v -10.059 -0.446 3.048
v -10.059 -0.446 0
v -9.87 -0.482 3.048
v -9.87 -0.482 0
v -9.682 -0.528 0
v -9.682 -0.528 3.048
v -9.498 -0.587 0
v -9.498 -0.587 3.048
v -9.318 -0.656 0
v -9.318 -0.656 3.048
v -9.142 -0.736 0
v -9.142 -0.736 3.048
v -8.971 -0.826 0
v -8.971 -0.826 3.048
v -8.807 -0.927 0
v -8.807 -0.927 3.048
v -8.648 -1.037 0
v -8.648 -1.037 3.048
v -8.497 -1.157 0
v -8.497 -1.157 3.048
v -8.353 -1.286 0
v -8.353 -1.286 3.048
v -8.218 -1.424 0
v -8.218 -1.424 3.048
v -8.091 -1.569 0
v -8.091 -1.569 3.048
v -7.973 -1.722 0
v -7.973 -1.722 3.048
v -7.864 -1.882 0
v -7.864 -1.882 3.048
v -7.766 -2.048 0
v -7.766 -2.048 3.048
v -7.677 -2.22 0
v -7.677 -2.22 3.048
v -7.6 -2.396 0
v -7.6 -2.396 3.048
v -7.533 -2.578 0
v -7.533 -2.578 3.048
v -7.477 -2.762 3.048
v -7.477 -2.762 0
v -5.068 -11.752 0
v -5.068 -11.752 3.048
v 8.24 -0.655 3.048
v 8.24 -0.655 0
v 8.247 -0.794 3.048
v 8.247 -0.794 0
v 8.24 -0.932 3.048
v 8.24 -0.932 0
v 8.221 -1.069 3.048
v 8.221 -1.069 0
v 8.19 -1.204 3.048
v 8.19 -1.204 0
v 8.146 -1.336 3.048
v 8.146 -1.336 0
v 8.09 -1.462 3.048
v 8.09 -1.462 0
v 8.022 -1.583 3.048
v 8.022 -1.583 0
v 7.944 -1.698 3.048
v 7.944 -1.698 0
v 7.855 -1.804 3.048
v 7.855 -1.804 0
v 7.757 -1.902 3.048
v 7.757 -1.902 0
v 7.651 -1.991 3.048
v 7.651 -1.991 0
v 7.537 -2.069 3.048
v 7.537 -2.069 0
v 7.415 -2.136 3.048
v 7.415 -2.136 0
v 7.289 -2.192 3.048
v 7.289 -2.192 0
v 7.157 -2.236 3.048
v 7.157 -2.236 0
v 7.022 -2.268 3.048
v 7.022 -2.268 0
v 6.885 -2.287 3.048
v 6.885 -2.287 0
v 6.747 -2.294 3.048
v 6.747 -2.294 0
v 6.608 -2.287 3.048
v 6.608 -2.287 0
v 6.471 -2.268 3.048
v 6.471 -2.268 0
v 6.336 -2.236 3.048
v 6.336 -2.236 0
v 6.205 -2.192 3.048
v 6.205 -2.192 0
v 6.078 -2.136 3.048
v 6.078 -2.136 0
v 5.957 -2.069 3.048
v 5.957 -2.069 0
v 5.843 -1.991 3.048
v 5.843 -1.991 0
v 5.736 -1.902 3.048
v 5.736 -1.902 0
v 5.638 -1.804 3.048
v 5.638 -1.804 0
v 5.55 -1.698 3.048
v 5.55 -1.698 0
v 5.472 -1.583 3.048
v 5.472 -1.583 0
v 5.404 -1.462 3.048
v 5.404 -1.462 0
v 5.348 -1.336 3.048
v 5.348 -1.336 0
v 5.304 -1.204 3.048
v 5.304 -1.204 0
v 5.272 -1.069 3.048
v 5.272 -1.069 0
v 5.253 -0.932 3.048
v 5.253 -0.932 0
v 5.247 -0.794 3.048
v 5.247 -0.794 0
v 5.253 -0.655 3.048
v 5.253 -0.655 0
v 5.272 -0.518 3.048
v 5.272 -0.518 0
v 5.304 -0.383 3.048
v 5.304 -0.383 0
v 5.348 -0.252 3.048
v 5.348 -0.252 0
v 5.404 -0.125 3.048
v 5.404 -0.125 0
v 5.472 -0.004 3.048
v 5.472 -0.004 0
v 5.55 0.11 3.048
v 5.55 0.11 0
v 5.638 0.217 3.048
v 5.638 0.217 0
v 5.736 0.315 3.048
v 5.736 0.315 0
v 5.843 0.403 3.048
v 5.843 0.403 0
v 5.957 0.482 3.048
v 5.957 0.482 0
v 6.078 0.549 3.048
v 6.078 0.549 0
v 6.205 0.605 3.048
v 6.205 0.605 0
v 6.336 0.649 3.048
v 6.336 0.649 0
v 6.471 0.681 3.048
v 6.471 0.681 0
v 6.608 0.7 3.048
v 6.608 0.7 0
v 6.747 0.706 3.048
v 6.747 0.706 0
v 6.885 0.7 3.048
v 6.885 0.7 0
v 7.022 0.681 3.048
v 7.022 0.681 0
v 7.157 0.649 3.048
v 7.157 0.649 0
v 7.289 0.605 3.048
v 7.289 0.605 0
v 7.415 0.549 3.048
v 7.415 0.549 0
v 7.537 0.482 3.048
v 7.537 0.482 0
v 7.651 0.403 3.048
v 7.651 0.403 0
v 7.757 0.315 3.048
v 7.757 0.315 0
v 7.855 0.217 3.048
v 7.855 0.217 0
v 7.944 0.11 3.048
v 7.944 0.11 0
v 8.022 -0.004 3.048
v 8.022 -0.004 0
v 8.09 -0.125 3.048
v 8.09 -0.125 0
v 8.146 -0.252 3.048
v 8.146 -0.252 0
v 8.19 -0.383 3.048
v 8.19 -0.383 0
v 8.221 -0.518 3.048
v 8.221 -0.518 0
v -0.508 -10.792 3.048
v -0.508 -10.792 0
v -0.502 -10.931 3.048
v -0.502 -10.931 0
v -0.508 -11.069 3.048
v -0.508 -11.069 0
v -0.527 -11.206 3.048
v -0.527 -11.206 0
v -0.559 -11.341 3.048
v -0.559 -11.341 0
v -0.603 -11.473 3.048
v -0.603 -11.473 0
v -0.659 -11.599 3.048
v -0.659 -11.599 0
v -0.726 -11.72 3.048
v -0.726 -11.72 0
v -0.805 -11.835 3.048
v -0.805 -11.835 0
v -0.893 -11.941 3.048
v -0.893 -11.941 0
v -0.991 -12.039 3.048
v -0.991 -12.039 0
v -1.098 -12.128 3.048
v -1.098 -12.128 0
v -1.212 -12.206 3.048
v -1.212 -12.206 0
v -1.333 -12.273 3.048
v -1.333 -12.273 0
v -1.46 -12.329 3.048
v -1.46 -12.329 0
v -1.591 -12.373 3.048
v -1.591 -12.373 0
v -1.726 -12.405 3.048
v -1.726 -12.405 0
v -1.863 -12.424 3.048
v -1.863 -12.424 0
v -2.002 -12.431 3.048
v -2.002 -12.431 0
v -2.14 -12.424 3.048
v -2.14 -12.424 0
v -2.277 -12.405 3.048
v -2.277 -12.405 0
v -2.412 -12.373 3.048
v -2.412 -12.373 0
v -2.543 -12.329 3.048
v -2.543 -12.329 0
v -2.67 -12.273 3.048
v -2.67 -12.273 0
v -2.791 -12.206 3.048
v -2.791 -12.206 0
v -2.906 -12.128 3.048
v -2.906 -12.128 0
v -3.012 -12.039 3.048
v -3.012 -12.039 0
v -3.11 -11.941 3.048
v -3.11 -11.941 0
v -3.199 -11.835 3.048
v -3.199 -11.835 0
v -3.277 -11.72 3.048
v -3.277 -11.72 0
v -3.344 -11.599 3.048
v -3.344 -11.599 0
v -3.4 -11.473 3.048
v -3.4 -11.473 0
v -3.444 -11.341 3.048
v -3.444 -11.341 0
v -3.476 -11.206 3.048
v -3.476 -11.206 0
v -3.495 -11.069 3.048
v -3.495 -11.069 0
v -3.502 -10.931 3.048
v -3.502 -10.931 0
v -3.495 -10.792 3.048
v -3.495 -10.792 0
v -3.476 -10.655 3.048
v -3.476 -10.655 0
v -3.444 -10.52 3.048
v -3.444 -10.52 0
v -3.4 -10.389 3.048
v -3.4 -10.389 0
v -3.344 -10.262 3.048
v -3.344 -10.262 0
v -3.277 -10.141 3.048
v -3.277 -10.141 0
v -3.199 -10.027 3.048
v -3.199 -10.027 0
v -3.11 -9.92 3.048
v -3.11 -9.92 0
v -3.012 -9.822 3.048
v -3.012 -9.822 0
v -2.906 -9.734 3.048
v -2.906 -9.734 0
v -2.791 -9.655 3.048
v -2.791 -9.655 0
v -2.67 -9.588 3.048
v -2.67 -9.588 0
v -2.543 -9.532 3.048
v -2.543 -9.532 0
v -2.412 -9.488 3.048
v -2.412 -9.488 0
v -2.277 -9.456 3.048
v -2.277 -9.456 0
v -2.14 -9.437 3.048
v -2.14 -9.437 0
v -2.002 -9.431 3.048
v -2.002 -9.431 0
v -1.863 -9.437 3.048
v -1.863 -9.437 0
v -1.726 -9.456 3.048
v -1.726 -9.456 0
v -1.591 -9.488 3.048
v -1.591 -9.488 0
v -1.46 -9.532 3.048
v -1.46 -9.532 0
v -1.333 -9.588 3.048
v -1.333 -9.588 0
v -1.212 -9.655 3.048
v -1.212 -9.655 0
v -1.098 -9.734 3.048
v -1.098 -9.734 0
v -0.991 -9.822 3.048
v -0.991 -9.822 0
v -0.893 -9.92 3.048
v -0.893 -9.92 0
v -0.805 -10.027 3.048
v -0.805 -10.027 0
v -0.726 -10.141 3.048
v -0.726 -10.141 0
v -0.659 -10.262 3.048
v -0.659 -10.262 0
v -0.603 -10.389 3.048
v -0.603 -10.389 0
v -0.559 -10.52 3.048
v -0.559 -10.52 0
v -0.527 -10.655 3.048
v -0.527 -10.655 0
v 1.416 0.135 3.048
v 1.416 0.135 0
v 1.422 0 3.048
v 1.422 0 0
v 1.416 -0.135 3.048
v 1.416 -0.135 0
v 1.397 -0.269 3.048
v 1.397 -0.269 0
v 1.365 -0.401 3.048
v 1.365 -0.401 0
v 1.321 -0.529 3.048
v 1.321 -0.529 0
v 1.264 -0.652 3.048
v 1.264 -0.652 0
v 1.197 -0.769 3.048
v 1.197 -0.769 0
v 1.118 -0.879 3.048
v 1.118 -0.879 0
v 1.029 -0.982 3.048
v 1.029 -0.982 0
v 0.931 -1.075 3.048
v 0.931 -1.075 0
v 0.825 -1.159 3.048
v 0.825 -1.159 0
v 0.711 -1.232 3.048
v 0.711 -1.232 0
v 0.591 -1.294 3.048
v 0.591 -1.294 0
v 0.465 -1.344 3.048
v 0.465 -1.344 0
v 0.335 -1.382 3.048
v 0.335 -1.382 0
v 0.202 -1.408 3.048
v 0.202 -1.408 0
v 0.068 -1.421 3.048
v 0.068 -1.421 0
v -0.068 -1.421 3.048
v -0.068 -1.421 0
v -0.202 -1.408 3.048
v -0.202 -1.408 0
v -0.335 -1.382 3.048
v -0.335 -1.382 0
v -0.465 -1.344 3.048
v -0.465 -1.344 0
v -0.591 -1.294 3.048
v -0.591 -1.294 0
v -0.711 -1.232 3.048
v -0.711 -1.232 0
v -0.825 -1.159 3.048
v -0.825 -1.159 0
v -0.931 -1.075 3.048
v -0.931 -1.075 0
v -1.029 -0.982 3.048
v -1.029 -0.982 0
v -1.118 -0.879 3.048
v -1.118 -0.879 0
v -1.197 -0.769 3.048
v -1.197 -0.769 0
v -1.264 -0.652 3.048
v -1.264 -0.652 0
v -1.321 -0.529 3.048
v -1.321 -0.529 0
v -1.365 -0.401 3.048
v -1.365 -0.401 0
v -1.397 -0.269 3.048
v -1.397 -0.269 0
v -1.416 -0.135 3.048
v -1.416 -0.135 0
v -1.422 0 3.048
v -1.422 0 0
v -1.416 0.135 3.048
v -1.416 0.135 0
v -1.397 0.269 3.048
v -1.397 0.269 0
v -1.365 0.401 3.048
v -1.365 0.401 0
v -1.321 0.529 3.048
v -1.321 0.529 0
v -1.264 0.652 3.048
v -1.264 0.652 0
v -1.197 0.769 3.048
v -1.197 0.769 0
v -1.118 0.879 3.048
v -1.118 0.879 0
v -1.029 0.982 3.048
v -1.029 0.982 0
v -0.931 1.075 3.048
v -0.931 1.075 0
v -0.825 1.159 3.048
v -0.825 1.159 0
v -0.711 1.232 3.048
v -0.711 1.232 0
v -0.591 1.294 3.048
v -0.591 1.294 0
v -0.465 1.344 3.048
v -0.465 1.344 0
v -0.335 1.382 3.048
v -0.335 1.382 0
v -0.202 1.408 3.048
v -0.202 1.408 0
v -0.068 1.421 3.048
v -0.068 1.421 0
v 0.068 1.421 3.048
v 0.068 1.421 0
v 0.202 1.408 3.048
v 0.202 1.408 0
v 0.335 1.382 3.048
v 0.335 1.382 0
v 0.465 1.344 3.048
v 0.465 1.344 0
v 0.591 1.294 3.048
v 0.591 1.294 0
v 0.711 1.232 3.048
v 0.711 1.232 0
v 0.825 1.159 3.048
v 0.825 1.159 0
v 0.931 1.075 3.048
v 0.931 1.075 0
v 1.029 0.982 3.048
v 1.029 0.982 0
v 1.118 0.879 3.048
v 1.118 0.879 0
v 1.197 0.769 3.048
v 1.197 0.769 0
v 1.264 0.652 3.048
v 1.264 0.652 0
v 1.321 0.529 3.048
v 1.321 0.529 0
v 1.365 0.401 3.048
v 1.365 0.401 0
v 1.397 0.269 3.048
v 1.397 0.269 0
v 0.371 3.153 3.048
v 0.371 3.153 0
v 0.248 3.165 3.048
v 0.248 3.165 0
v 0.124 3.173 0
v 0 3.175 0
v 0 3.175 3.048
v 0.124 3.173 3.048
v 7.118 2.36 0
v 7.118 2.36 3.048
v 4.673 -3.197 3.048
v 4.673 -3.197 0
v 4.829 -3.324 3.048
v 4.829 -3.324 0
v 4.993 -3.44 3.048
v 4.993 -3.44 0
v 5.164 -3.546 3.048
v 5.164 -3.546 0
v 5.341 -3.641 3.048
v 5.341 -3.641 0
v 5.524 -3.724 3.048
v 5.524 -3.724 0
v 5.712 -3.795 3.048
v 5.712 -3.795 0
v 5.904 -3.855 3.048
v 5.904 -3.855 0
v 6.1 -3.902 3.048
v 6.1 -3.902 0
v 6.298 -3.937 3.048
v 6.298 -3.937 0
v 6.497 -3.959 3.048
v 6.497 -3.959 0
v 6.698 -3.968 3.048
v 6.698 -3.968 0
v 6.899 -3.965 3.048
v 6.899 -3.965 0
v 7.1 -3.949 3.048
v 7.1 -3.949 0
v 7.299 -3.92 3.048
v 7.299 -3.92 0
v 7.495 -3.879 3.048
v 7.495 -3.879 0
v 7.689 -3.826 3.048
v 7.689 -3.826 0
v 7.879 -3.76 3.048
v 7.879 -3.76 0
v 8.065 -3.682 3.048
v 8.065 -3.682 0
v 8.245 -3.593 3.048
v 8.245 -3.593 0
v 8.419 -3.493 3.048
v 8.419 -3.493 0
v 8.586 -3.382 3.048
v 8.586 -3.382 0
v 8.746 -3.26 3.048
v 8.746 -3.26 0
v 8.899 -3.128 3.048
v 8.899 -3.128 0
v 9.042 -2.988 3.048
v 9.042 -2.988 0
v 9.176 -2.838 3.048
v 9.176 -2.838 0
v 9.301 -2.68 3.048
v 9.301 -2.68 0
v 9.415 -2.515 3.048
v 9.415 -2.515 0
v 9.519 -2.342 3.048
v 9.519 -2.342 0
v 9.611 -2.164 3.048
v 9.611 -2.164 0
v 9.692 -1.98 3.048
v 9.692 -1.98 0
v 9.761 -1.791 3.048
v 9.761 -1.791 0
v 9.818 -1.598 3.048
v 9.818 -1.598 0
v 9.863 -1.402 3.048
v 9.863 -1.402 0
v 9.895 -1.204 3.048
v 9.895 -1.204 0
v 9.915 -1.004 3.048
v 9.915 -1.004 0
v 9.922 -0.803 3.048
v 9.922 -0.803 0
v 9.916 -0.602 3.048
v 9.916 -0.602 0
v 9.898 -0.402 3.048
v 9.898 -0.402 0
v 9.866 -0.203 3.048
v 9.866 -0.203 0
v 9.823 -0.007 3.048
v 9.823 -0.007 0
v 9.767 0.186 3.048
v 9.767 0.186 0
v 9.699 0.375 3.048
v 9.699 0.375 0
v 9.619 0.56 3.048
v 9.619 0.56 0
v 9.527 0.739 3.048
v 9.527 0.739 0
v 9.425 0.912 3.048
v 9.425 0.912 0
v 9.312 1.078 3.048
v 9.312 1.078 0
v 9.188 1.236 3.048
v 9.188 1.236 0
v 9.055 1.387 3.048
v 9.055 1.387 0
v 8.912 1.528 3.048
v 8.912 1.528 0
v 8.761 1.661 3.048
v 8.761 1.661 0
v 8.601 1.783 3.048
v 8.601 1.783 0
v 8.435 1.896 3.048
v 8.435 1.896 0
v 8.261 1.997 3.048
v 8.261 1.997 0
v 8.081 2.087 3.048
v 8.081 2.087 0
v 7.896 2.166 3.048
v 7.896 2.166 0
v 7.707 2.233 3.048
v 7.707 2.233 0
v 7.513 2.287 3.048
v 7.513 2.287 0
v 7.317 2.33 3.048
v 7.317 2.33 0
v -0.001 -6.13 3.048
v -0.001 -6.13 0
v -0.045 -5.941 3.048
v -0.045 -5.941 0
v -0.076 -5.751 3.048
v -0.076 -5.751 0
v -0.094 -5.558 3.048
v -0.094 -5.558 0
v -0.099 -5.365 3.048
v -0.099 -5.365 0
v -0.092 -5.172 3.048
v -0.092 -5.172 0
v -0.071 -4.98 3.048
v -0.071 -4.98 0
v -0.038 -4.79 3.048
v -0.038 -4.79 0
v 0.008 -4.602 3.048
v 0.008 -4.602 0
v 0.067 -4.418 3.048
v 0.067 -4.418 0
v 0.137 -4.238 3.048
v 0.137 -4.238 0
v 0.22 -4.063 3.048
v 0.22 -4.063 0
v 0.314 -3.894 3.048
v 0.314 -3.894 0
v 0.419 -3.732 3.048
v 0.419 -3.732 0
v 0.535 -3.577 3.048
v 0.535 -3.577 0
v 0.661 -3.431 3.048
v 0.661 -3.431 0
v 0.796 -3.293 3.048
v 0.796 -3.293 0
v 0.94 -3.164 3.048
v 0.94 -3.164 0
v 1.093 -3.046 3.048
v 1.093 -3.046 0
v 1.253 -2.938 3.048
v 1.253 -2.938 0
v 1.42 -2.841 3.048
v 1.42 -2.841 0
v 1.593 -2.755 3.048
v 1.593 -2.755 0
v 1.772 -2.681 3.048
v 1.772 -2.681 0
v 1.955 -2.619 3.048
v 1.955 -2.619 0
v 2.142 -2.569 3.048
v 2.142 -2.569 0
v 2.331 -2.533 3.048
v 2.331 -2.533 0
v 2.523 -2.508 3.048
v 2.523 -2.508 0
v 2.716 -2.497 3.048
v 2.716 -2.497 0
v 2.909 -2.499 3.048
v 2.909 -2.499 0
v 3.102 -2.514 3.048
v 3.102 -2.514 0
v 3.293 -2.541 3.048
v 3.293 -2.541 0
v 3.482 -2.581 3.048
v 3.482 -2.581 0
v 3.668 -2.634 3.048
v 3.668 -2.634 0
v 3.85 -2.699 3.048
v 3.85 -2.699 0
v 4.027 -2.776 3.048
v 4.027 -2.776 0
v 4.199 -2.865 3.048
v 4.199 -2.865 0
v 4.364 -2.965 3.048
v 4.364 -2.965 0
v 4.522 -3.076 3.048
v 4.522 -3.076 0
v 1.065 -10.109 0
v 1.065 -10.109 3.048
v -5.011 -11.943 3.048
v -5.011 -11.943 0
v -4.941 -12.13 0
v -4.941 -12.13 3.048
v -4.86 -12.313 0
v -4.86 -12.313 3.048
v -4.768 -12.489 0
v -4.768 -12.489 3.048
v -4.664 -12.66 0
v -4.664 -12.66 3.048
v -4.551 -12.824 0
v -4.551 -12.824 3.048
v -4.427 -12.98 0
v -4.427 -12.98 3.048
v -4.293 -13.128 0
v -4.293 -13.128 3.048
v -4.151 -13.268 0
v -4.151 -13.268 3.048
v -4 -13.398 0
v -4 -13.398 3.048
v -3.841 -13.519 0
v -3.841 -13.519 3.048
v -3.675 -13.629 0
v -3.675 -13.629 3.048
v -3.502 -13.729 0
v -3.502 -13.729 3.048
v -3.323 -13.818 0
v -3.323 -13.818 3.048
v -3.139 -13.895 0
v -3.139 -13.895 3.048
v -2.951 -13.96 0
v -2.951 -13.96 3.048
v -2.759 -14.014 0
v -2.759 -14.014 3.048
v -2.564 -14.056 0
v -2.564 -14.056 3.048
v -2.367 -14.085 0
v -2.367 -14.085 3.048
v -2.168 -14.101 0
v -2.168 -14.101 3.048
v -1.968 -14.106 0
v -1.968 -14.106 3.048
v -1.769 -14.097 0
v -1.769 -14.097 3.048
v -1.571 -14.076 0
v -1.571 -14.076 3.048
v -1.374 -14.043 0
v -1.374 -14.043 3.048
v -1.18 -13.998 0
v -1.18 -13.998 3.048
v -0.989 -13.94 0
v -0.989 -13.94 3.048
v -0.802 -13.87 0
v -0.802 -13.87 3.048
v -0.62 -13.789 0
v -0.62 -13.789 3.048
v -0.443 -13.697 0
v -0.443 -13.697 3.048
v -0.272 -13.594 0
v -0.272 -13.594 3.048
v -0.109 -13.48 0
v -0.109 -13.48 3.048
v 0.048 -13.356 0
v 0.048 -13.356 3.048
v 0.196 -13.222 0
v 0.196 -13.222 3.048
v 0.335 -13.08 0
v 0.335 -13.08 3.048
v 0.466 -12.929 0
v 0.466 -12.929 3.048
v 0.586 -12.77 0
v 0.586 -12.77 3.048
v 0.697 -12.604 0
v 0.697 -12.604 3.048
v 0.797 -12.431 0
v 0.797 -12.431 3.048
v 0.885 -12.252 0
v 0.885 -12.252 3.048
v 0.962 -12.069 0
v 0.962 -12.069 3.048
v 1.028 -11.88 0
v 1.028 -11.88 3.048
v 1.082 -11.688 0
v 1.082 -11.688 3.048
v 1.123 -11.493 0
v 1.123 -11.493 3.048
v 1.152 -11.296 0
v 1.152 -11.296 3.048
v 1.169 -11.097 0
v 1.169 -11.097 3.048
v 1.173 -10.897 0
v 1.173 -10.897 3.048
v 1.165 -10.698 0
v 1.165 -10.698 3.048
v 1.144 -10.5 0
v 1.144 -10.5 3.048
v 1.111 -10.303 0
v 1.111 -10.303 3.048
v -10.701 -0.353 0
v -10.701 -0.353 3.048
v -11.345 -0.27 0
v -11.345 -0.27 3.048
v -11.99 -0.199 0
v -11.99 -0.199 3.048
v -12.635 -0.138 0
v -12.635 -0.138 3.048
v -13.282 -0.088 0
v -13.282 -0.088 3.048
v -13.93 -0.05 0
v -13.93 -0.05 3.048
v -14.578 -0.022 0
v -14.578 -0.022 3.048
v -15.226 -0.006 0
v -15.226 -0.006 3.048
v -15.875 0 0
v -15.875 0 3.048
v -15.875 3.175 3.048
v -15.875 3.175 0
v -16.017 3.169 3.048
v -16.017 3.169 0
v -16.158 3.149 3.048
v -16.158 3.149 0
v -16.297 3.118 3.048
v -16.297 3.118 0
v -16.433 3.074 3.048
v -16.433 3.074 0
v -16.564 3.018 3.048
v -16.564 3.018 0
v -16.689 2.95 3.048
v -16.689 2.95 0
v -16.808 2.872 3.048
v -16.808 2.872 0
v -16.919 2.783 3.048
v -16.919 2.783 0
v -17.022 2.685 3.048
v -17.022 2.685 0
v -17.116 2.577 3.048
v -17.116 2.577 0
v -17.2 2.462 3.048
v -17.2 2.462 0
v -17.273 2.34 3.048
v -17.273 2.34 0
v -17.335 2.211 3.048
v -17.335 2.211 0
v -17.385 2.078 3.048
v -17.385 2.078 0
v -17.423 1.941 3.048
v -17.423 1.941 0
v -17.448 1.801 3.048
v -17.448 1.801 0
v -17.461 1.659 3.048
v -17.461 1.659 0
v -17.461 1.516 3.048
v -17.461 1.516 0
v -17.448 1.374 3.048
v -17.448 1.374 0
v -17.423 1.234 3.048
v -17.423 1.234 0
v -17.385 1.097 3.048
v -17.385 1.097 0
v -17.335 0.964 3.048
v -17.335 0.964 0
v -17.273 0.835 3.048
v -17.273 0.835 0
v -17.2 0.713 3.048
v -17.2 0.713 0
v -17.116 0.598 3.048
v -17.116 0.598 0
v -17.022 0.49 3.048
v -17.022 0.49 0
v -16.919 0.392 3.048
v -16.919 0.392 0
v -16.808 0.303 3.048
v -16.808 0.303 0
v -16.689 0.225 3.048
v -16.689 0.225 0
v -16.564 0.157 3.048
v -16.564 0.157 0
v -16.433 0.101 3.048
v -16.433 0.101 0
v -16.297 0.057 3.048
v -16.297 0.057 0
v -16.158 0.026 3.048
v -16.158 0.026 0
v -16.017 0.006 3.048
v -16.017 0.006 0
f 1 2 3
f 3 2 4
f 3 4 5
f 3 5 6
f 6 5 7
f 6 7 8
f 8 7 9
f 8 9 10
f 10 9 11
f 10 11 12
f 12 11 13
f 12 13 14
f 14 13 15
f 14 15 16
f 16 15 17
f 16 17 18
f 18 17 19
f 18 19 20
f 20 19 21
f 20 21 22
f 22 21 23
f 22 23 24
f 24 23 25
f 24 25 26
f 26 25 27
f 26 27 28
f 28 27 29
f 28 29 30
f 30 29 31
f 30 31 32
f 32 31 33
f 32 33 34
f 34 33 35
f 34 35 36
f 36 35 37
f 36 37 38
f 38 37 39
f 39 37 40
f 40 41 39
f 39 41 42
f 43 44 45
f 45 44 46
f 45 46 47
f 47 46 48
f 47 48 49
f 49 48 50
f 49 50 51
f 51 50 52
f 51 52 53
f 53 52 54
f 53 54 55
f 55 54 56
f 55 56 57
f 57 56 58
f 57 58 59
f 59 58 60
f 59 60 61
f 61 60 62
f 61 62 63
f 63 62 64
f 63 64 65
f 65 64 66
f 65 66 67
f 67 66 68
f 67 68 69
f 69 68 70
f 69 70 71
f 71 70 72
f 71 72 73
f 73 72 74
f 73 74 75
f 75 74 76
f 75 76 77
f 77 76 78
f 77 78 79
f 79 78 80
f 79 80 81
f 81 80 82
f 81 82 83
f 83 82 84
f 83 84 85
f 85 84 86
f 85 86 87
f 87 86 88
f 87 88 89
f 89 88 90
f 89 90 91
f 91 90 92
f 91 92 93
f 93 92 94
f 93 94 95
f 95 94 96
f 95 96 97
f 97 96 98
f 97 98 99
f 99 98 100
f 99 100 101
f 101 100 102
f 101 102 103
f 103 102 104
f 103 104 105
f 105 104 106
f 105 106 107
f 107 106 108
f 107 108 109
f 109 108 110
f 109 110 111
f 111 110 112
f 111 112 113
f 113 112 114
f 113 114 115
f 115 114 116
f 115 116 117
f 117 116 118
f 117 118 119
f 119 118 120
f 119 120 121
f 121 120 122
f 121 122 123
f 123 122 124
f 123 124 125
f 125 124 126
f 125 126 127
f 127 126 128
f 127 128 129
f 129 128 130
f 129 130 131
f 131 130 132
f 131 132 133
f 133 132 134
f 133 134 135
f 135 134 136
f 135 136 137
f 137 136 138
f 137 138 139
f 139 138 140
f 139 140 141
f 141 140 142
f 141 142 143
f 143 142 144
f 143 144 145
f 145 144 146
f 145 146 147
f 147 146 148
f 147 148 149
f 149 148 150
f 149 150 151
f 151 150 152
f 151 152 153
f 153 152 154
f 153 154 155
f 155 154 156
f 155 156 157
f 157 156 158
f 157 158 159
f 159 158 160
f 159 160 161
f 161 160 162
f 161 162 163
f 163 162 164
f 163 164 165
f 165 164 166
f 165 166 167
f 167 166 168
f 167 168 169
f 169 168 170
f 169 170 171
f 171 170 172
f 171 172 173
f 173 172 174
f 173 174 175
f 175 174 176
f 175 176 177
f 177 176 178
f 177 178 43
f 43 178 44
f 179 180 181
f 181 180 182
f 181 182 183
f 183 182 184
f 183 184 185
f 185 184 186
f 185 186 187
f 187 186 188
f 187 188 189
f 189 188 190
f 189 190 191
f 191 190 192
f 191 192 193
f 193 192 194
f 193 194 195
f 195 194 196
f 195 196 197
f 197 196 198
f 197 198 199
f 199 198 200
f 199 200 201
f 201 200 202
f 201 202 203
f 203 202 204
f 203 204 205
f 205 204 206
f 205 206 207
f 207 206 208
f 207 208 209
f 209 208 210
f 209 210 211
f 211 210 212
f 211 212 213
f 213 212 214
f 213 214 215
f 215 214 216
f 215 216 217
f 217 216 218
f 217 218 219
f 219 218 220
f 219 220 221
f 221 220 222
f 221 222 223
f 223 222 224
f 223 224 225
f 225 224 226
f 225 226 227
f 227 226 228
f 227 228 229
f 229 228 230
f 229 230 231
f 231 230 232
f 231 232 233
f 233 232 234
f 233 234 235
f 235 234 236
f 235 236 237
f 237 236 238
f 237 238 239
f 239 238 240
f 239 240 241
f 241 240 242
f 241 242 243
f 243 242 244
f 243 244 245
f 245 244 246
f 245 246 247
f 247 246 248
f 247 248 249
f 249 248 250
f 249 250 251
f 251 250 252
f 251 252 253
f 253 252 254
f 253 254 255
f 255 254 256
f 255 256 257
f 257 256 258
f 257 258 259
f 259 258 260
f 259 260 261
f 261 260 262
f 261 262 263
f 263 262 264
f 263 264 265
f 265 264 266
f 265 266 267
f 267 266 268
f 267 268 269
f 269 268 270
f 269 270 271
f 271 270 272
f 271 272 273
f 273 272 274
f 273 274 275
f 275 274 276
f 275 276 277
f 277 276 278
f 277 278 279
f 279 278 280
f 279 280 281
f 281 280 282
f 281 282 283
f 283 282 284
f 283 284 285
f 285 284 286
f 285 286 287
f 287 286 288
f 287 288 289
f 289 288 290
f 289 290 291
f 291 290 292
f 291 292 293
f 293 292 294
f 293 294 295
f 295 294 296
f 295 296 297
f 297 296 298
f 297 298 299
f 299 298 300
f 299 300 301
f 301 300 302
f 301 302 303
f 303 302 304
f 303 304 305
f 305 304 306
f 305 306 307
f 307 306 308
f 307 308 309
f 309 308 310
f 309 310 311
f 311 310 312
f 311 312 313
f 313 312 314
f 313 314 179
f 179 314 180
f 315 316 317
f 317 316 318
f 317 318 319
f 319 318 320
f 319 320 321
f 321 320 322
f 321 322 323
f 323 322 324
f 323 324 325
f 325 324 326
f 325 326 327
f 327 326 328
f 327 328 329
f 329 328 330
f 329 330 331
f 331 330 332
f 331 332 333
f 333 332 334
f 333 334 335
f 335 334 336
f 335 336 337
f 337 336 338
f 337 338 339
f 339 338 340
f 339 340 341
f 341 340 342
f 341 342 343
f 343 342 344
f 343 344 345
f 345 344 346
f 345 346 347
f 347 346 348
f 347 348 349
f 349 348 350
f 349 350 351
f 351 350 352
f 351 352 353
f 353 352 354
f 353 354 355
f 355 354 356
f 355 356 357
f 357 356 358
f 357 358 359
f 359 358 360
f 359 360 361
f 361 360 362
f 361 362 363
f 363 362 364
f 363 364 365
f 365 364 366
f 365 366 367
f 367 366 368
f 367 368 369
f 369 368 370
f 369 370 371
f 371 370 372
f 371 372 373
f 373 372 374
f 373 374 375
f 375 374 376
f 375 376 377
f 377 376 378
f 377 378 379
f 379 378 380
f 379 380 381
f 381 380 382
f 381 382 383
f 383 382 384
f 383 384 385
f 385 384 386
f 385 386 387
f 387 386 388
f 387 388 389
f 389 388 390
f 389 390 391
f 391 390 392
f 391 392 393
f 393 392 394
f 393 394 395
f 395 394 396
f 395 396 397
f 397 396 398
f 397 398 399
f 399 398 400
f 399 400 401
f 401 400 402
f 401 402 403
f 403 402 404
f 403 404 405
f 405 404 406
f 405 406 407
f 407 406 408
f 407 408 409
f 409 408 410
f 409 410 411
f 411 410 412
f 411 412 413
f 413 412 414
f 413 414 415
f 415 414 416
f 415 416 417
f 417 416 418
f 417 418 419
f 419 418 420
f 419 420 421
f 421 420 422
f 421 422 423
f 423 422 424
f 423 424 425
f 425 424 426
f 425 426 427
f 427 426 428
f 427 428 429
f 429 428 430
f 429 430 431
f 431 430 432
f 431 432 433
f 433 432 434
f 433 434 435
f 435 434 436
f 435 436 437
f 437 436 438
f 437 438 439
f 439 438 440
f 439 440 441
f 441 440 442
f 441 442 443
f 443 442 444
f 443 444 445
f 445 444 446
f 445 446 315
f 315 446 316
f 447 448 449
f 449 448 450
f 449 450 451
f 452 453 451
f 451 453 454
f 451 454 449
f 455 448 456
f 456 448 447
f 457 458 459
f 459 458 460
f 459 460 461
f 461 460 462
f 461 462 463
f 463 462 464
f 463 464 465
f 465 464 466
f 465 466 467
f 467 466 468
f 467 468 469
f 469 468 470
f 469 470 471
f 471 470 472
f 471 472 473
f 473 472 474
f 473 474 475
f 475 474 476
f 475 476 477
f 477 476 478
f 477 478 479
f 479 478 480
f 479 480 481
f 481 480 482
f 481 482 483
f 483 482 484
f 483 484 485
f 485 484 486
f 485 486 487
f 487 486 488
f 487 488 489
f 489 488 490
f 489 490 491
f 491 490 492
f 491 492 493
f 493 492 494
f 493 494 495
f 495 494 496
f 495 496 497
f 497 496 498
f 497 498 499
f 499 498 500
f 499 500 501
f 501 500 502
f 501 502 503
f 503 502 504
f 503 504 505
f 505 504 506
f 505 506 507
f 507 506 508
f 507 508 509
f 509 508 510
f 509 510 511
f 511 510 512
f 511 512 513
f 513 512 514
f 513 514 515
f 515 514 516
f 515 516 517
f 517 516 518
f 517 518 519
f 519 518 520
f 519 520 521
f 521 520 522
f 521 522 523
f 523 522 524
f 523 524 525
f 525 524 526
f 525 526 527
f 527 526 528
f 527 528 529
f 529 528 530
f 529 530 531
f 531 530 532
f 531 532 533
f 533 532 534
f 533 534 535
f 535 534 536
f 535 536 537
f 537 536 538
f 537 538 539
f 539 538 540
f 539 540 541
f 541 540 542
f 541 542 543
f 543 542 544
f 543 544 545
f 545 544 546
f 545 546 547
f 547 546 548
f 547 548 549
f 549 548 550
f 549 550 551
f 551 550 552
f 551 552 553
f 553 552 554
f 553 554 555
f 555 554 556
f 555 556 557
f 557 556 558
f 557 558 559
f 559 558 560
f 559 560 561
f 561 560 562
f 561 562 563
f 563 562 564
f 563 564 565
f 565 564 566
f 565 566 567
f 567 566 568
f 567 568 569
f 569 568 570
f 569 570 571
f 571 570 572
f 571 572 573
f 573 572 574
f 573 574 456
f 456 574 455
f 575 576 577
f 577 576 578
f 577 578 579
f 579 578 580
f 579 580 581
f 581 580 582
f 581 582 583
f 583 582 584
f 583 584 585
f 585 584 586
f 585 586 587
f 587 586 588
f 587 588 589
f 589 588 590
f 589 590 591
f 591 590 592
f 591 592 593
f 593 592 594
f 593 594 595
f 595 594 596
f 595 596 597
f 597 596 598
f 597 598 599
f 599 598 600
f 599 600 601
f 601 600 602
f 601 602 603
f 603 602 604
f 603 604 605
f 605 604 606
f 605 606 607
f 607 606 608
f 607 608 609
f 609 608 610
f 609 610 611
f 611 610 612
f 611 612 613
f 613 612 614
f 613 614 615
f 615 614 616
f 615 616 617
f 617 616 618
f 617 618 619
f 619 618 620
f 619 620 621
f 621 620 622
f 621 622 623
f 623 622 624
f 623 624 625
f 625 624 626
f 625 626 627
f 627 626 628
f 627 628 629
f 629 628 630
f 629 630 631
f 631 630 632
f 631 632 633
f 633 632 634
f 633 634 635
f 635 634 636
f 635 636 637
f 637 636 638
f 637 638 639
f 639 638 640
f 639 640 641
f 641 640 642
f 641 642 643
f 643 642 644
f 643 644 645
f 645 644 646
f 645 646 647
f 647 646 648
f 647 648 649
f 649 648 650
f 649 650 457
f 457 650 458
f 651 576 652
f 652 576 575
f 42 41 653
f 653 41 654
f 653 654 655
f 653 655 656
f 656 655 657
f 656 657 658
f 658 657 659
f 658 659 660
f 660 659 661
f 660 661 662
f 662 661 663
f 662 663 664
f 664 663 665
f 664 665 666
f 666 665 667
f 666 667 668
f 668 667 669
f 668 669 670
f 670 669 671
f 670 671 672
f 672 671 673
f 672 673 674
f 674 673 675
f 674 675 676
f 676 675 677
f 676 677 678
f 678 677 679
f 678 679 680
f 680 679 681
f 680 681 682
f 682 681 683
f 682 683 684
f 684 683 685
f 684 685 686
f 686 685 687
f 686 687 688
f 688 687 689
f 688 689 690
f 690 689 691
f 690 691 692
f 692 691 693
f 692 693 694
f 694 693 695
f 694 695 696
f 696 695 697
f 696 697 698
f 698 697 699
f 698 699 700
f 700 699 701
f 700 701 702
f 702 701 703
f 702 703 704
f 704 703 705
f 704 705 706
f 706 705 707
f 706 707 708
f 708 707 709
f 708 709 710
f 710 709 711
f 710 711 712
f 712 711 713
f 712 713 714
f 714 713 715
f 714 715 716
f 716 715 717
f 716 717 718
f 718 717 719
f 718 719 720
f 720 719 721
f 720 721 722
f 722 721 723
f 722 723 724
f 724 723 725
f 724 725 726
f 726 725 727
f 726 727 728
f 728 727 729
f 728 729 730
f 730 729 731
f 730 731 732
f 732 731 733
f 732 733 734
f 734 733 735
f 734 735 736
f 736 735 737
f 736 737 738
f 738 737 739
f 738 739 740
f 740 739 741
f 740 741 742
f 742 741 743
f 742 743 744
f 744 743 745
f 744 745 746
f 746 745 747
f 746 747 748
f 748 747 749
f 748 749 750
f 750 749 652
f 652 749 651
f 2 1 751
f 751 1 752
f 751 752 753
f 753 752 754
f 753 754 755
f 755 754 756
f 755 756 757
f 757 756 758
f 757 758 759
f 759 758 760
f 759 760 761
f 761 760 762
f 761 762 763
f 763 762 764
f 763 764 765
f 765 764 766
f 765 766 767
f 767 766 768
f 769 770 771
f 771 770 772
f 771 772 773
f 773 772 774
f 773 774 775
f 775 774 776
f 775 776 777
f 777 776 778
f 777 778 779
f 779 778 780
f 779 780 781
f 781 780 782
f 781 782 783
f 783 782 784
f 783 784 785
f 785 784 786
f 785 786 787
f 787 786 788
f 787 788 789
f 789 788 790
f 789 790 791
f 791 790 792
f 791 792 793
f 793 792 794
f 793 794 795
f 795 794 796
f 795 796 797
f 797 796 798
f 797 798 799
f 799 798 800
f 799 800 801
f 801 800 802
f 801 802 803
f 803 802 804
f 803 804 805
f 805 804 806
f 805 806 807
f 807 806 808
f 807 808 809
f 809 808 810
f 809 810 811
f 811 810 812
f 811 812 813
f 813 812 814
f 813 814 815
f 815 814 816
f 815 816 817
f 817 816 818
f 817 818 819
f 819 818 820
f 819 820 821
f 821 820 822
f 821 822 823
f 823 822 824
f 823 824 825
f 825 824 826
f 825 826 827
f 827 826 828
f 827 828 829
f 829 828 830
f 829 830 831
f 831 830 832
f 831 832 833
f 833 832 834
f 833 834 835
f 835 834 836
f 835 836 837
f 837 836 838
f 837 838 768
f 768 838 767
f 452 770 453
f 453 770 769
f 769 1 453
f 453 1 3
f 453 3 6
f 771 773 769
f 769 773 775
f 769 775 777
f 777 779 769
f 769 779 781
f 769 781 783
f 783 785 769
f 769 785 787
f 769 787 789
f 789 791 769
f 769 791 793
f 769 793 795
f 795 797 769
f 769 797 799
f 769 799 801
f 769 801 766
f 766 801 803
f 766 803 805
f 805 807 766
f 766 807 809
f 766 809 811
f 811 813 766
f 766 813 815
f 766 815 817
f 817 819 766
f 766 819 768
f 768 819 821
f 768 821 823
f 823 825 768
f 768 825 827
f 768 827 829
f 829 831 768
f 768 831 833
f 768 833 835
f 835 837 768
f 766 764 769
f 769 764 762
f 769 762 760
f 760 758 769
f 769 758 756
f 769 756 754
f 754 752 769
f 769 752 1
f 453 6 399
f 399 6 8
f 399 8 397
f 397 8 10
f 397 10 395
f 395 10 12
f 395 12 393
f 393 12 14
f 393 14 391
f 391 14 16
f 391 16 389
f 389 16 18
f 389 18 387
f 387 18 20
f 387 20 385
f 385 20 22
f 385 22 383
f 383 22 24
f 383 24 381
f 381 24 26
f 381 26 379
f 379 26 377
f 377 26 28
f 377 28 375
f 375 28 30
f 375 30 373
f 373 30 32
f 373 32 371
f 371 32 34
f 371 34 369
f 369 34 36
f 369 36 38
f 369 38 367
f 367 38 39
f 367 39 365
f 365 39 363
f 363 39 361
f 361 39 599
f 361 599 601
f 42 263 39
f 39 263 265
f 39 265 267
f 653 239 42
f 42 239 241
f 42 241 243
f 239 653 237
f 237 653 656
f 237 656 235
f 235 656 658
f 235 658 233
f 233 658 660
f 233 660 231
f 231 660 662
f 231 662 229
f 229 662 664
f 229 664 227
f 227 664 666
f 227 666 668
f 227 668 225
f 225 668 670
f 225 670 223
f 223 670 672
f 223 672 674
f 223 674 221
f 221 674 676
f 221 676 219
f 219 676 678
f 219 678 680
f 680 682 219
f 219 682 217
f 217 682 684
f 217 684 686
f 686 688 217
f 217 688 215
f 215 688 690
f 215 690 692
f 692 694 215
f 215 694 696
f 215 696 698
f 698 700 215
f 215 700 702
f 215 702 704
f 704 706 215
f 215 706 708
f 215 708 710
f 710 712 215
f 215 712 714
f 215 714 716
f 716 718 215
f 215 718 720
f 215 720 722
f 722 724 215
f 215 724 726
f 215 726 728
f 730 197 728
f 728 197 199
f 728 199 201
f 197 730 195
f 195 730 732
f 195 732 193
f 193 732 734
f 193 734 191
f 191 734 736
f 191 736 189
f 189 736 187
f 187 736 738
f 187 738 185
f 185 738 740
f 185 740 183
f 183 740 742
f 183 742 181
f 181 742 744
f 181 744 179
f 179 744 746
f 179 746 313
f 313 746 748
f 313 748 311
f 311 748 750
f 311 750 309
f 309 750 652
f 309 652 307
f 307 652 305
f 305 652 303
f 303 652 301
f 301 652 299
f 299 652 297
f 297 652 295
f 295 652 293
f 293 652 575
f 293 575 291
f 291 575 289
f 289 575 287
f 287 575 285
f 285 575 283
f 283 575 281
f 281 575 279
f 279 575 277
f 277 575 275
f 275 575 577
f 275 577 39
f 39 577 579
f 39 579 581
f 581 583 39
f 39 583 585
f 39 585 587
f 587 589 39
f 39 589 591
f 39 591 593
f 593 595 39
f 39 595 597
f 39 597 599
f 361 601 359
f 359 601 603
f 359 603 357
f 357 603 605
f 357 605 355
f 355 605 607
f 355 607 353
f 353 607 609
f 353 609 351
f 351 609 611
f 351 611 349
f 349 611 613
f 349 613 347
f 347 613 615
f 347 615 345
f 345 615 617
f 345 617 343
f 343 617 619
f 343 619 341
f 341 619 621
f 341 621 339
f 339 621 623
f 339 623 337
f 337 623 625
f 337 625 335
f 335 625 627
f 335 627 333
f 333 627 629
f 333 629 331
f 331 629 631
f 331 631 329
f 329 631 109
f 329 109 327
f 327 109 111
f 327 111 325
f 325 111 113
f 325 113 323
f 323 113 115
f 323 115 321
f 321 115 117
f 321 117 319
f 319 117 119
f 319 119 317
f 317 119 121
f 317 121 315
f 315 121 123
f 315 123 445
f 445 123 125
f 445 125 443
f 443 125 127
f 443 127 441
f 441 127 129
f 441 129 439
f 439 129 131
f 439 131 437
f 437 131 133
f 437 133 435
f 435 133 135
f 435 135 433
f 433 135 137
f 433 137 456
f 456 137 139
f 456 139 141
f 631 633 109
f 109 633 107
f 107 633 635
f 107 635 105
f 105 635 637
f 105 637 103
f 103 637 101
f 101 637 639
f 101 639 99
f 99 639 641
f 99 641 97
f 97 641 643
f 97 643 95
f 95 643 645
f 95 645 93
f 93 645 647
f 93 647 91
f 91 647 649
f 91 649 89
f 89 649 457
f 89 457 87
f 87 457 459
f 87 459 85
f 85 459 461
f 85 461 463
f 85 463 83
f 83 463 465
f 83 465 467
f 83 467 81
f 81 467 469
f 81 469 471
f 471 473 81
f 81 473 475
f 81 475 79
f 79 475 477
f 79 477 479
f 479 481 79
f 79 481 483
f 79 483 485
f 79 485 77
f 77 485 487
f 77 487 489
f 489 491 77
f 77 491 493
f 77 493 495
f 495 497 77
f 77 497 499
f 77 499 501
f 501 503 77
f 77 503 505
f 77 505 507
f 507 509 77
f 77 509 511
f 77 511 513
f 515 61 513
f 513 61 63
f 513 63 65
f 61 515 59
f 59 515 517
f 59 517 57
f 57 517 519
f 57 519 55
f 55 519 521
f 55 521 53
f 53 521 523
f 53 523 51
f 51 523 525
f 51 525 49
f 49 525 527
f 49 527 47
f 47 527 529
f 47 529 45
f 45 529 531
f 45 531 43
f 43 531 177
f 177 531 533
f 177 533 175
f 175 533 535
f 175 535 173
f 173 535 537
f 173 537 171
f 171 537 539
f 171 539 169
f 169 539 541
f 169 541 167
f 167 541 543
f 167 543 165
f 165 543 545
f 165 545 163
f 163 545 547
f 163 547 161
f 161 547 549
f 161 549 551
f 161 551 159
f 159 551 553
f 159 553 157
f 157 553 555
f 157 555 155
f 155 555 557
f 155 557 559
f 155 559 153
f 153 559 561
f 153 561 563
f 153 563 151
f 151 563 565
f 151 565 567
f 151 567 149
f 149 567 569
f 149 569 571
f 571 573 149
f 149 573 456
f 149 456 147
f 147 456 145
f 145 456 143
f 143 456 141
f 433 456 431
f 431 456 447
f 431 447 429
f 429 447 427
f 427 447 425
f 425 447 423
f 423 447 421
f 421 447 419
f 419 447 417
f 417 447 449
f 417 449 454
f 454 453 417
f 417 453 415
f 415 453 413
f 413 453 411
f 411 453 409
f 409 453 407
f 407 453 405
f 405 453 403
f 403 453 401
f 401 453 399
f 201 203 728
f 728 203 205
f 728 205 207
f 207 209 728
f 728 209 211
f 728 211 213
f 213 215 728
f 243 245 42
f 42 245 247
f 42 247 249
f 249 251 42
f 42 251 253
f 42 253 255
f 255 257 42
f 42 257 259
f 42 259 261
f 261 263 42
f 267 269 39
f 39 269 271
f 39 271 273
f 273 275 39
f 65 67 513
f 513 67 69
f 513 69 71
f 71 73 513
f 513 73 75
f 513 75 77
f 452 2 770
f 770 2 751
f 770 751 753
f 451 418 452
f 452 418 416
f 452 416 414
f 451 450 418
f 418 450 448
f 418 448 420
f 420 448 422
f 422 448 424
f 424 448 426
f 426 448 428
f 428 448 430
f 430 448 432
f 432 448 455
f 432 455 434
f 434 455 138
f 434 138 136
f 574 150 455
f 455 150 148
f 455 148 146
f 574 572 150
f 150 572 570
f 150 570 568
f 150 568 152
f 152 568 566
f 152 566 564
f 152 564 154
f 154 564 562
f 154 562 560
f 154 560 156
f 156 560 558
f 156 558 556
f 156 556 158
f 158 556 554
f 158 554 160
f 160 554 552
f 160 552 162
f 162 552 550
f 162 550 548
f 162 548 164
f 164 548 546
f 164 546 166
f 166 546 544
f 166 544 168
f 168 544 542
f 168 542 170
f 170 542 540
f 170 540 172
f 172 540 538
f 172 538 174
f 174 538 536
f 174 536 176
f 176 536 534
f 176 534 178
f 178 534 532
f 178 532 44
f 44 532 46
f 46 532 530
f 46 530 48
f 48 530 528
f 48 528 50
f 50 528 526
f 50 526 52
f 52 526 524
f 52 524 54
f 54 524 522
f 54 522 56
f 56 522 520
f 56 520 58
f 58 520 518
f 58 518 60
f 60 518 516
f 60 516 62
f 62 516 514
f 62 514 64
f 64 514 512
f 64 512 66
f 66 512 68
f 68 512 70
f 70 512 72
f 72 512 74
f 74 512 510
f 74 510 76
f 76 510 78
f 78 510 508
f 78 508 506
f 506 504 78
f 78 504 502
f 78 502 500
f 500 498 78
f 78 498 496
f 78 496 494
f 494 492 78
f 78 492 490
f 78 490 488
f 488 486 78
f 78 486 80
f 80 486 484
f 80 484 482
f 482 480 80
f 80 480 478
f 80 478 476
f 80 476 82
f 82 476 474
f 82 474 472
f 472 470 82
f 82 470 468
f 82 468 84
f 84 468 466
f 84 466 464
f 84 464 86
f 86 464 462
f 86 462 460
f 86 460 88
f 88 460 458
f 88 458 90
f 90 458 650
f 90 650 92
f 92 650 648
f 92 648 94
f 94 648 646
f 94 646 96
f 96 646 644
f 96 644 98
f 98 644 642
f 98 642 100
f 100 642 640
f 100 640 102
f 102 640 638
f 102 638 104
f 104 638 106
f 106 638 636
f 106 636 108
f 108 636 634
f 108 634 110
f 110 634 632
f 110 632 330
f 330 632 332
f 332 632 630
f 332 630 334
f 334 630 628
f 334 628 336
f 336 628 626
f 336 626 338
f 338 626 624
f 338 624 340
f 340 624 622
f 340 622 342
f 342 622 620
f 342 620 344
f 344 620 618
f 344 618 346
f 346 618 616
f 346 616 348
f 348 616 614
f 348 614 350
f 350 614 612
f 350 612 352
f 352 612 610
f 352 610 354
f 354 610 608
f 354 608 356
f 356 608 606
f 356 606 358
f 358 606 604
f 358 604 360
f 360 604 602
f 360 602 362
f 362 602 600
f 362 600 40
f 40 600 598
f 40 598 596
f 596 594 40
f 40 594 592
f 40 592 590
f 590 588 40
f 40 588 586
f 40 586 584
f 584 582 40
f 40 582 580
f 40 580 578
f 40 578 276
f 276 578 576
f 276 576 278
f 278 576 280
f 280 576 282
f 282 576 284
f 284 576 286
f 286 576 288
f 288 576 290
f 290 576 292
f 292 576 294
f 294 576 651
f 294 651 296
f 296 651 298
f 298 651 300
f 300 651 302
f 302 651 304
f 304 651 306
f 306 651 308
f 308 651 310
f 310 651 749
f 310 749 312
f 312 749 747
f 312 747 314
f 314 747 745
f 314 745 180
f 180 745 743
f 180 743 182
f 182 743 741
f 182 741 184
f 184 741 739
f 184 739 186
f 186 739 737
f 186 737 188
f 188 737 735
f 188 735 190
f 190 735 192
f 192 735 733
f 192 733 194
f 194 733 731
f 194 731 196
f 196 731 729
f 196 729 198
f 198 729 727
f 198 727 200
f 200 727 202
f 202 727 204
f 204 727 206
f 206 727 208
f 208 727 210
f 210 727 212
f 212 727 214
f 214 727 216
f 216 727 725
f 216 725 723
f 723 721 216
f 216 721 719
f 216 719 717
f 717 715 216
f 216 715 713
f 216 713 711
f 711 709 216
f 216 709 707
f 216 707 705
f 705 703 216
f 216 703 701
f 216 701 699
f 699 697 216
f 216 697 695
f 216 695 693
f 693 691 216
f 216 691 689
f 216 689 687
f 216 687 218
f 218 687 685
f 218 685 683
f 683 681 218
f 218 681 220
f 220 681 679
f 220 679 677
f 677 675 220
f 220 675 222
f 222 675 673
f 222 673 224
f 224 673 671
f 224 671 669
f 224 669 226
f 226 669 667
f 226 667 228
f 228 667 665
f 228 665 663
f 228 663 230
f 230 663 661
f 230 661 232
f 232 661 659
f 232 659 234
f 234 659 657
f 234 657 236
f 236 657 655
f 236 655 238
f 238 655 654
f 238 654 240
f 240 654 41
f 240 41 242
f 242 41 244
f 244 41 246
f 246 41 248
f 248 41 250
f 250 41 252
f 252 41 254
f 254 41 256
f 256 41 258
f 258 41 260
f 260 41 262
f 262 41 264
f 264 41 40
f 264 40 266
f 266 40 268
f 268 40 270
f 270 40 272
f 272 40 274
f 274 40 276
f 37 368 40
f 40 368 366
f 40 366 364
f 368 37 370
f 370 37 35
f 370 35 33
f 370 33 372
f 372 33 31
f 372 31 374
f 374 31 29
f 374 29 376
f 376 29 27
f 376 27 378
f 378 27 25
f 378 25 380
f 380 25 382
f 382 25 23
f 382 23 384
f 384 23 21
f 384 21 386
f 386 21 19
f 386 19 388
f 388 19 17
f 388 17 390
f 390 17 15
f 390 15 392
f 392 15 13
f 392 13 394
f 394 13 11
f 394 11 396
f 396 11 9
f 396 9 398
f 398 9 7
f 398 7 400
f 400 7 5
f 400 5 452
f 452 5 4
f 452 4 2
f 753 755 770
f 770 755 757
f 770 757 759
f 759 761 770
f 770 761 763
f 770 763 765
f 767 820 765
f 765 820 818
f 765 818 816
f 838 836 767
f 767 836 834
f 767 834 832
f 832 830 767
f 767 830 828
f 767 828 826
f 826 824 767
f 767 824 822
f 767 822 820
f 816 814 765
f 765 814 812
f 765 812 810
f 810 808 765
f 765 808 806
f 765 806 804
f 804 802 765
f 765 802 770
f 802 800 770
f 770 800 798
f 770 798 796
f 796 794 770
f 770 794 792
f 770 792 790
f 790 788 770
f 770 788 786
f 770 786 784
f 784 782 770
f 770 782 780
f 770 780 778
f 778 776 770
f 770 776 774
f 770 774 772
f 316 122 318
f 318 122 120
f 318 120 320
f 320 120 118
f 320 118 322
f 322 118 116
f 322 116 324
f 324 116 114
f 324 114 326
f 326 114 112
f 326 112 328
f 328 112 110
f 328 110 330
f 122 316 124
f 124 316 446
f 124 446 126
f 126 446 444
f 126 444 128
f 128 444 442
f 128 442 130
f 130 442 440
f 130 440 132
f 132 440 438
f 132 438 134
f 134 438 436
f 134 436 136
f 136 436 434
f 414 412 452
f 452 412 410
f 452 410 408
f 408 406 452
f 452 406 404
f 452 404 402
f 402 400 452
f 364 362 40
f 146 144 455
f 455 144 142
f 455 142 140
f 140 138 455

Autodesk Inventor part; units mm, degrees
ref_plane "YZ Plane" through (0, 0, 0) normal (1, 0, 0) x (0, 1, 0)
ref_plane "XZ Plane" through (0, 0, 0) normal (0, 1, 0) x (-1, 0, 0)
ref_plane "XY Plane" through (0, 0, 0) normal (0, 0, 1) x (1, 0, 0)
sketch "Sketch1" plane through (0, 0, 0) normal (0, 0, 1) x (1, 0, 0)
  circle A0 centre (0, 0) radius 1.4224
  circle A1 centre (0, 0) radius 3.175
  line L0 (0, 0) -> (-15.875, 0) construction
  circle A2 centre (-2.0016, -10.9307) radius 3.175
  circle A3 centre (-2.0016, -10.9307) radius 5 construction
  circle A4 centre (-2.0016, -10.9307) radius 1.5
  line L1 (0, 0) -> (-2.0016, -10.9307) construction
  line L2 (-2.0016, -10.9307) -> (-3.4771, -10.6606) construction
  line L3 (0, 0) -> (-2.0016, -10.9307) construction
  arc A5 (-5.0684, -10.109) -> (1.0652, -11.7525) centre (-2.0016, -10.9307) ccw
  arc A6 (-1.2212, -2.9308) -> (-15.875, 0) centre (-15.875, -38.1) ccw
  arc A7 (-15.875, 3.175) -> (-15.875, 0) centre (-15.875, 1.5875) ccw
  line L4 (-15.875, 3.175) -> (0, 3.175)
  line L5 (-2.0016, -10.9307) -> (-4.9305, 0) construction
  line L6 (1.0652, -10.109) -> (-1.8637, 0.8218)
  line L7 (-7.9973, -0.8218) -> (-5.0684, -11.7525)
  arc A8 (-5.0684, -11.7525) -> (1.0652, -10.109) centre (-2.0016, -10.9307) ccw
  arc A9 (-1.8637, 0.8218) -> (-7.9973, -0.8218) centre (-4.9305, 0) ccw
  circle A10 centre (6.7469, -0.7937) radius 3.175
  circle A11 centre (6.7469, -0.7937) radius 1.5
  line L8 (7.1178, 2.3595) -> (0.371, 3.1533)
  arc A12 (4.6726, -3.1975) -> (-0.0011, -6.1296) centre (2.7869, -5.3826) ccw
  circle A13 centre (6.7469, -0.7937) radius 5 construction
  point P0 (-5.0684, -10.109)
  point P1 (0, 3.175)
  point P2 (-7.9969, -0.8234)
  point P3 (1.0652, -10.109)
  point P4 (-0.8218, -3.0668)
  point P5 (-2.4653, 2.0008)
  point P6 (0.6312, -3.1116)
  point P7 (1.4598, -2.8195)
  point P8 (-1.4243, -1.0642)
  point P9 (-1.7024, 0.5129)
  point P10 (1.0652, -10.109)
  point P11 (-5.0684, -11.7525)
  dimension "d24" = 3
  dimension "d0" = 2.8448
  dimension "d1" = 6.35
  dimension "d9" = 15.875
  dimension "d22" = 6.35
  dimension "d23" = 10
  dimension "Arm_Length" = 11.1125
  dimension "d29" = 3.175
  dimension "d30" = 6.35
  dimension "d31" = 6.35
  dimension "d32" = 3
  dimension "d36" = 10
  dimension "Arm_Angle" = 105
  dimension "d38" = 4.7625
  dimension "d39" = 6.7469
  dimension "d40" = 0.7937
extrude "Extrusion1" add sketch "Sketch1" along normal blind 3.048
fillet "Fillet1" radius 3.175 1 edges at (-7.9969, -0.8234, 1.524)
properties part number "Lever" material "Aluminum 6061"
